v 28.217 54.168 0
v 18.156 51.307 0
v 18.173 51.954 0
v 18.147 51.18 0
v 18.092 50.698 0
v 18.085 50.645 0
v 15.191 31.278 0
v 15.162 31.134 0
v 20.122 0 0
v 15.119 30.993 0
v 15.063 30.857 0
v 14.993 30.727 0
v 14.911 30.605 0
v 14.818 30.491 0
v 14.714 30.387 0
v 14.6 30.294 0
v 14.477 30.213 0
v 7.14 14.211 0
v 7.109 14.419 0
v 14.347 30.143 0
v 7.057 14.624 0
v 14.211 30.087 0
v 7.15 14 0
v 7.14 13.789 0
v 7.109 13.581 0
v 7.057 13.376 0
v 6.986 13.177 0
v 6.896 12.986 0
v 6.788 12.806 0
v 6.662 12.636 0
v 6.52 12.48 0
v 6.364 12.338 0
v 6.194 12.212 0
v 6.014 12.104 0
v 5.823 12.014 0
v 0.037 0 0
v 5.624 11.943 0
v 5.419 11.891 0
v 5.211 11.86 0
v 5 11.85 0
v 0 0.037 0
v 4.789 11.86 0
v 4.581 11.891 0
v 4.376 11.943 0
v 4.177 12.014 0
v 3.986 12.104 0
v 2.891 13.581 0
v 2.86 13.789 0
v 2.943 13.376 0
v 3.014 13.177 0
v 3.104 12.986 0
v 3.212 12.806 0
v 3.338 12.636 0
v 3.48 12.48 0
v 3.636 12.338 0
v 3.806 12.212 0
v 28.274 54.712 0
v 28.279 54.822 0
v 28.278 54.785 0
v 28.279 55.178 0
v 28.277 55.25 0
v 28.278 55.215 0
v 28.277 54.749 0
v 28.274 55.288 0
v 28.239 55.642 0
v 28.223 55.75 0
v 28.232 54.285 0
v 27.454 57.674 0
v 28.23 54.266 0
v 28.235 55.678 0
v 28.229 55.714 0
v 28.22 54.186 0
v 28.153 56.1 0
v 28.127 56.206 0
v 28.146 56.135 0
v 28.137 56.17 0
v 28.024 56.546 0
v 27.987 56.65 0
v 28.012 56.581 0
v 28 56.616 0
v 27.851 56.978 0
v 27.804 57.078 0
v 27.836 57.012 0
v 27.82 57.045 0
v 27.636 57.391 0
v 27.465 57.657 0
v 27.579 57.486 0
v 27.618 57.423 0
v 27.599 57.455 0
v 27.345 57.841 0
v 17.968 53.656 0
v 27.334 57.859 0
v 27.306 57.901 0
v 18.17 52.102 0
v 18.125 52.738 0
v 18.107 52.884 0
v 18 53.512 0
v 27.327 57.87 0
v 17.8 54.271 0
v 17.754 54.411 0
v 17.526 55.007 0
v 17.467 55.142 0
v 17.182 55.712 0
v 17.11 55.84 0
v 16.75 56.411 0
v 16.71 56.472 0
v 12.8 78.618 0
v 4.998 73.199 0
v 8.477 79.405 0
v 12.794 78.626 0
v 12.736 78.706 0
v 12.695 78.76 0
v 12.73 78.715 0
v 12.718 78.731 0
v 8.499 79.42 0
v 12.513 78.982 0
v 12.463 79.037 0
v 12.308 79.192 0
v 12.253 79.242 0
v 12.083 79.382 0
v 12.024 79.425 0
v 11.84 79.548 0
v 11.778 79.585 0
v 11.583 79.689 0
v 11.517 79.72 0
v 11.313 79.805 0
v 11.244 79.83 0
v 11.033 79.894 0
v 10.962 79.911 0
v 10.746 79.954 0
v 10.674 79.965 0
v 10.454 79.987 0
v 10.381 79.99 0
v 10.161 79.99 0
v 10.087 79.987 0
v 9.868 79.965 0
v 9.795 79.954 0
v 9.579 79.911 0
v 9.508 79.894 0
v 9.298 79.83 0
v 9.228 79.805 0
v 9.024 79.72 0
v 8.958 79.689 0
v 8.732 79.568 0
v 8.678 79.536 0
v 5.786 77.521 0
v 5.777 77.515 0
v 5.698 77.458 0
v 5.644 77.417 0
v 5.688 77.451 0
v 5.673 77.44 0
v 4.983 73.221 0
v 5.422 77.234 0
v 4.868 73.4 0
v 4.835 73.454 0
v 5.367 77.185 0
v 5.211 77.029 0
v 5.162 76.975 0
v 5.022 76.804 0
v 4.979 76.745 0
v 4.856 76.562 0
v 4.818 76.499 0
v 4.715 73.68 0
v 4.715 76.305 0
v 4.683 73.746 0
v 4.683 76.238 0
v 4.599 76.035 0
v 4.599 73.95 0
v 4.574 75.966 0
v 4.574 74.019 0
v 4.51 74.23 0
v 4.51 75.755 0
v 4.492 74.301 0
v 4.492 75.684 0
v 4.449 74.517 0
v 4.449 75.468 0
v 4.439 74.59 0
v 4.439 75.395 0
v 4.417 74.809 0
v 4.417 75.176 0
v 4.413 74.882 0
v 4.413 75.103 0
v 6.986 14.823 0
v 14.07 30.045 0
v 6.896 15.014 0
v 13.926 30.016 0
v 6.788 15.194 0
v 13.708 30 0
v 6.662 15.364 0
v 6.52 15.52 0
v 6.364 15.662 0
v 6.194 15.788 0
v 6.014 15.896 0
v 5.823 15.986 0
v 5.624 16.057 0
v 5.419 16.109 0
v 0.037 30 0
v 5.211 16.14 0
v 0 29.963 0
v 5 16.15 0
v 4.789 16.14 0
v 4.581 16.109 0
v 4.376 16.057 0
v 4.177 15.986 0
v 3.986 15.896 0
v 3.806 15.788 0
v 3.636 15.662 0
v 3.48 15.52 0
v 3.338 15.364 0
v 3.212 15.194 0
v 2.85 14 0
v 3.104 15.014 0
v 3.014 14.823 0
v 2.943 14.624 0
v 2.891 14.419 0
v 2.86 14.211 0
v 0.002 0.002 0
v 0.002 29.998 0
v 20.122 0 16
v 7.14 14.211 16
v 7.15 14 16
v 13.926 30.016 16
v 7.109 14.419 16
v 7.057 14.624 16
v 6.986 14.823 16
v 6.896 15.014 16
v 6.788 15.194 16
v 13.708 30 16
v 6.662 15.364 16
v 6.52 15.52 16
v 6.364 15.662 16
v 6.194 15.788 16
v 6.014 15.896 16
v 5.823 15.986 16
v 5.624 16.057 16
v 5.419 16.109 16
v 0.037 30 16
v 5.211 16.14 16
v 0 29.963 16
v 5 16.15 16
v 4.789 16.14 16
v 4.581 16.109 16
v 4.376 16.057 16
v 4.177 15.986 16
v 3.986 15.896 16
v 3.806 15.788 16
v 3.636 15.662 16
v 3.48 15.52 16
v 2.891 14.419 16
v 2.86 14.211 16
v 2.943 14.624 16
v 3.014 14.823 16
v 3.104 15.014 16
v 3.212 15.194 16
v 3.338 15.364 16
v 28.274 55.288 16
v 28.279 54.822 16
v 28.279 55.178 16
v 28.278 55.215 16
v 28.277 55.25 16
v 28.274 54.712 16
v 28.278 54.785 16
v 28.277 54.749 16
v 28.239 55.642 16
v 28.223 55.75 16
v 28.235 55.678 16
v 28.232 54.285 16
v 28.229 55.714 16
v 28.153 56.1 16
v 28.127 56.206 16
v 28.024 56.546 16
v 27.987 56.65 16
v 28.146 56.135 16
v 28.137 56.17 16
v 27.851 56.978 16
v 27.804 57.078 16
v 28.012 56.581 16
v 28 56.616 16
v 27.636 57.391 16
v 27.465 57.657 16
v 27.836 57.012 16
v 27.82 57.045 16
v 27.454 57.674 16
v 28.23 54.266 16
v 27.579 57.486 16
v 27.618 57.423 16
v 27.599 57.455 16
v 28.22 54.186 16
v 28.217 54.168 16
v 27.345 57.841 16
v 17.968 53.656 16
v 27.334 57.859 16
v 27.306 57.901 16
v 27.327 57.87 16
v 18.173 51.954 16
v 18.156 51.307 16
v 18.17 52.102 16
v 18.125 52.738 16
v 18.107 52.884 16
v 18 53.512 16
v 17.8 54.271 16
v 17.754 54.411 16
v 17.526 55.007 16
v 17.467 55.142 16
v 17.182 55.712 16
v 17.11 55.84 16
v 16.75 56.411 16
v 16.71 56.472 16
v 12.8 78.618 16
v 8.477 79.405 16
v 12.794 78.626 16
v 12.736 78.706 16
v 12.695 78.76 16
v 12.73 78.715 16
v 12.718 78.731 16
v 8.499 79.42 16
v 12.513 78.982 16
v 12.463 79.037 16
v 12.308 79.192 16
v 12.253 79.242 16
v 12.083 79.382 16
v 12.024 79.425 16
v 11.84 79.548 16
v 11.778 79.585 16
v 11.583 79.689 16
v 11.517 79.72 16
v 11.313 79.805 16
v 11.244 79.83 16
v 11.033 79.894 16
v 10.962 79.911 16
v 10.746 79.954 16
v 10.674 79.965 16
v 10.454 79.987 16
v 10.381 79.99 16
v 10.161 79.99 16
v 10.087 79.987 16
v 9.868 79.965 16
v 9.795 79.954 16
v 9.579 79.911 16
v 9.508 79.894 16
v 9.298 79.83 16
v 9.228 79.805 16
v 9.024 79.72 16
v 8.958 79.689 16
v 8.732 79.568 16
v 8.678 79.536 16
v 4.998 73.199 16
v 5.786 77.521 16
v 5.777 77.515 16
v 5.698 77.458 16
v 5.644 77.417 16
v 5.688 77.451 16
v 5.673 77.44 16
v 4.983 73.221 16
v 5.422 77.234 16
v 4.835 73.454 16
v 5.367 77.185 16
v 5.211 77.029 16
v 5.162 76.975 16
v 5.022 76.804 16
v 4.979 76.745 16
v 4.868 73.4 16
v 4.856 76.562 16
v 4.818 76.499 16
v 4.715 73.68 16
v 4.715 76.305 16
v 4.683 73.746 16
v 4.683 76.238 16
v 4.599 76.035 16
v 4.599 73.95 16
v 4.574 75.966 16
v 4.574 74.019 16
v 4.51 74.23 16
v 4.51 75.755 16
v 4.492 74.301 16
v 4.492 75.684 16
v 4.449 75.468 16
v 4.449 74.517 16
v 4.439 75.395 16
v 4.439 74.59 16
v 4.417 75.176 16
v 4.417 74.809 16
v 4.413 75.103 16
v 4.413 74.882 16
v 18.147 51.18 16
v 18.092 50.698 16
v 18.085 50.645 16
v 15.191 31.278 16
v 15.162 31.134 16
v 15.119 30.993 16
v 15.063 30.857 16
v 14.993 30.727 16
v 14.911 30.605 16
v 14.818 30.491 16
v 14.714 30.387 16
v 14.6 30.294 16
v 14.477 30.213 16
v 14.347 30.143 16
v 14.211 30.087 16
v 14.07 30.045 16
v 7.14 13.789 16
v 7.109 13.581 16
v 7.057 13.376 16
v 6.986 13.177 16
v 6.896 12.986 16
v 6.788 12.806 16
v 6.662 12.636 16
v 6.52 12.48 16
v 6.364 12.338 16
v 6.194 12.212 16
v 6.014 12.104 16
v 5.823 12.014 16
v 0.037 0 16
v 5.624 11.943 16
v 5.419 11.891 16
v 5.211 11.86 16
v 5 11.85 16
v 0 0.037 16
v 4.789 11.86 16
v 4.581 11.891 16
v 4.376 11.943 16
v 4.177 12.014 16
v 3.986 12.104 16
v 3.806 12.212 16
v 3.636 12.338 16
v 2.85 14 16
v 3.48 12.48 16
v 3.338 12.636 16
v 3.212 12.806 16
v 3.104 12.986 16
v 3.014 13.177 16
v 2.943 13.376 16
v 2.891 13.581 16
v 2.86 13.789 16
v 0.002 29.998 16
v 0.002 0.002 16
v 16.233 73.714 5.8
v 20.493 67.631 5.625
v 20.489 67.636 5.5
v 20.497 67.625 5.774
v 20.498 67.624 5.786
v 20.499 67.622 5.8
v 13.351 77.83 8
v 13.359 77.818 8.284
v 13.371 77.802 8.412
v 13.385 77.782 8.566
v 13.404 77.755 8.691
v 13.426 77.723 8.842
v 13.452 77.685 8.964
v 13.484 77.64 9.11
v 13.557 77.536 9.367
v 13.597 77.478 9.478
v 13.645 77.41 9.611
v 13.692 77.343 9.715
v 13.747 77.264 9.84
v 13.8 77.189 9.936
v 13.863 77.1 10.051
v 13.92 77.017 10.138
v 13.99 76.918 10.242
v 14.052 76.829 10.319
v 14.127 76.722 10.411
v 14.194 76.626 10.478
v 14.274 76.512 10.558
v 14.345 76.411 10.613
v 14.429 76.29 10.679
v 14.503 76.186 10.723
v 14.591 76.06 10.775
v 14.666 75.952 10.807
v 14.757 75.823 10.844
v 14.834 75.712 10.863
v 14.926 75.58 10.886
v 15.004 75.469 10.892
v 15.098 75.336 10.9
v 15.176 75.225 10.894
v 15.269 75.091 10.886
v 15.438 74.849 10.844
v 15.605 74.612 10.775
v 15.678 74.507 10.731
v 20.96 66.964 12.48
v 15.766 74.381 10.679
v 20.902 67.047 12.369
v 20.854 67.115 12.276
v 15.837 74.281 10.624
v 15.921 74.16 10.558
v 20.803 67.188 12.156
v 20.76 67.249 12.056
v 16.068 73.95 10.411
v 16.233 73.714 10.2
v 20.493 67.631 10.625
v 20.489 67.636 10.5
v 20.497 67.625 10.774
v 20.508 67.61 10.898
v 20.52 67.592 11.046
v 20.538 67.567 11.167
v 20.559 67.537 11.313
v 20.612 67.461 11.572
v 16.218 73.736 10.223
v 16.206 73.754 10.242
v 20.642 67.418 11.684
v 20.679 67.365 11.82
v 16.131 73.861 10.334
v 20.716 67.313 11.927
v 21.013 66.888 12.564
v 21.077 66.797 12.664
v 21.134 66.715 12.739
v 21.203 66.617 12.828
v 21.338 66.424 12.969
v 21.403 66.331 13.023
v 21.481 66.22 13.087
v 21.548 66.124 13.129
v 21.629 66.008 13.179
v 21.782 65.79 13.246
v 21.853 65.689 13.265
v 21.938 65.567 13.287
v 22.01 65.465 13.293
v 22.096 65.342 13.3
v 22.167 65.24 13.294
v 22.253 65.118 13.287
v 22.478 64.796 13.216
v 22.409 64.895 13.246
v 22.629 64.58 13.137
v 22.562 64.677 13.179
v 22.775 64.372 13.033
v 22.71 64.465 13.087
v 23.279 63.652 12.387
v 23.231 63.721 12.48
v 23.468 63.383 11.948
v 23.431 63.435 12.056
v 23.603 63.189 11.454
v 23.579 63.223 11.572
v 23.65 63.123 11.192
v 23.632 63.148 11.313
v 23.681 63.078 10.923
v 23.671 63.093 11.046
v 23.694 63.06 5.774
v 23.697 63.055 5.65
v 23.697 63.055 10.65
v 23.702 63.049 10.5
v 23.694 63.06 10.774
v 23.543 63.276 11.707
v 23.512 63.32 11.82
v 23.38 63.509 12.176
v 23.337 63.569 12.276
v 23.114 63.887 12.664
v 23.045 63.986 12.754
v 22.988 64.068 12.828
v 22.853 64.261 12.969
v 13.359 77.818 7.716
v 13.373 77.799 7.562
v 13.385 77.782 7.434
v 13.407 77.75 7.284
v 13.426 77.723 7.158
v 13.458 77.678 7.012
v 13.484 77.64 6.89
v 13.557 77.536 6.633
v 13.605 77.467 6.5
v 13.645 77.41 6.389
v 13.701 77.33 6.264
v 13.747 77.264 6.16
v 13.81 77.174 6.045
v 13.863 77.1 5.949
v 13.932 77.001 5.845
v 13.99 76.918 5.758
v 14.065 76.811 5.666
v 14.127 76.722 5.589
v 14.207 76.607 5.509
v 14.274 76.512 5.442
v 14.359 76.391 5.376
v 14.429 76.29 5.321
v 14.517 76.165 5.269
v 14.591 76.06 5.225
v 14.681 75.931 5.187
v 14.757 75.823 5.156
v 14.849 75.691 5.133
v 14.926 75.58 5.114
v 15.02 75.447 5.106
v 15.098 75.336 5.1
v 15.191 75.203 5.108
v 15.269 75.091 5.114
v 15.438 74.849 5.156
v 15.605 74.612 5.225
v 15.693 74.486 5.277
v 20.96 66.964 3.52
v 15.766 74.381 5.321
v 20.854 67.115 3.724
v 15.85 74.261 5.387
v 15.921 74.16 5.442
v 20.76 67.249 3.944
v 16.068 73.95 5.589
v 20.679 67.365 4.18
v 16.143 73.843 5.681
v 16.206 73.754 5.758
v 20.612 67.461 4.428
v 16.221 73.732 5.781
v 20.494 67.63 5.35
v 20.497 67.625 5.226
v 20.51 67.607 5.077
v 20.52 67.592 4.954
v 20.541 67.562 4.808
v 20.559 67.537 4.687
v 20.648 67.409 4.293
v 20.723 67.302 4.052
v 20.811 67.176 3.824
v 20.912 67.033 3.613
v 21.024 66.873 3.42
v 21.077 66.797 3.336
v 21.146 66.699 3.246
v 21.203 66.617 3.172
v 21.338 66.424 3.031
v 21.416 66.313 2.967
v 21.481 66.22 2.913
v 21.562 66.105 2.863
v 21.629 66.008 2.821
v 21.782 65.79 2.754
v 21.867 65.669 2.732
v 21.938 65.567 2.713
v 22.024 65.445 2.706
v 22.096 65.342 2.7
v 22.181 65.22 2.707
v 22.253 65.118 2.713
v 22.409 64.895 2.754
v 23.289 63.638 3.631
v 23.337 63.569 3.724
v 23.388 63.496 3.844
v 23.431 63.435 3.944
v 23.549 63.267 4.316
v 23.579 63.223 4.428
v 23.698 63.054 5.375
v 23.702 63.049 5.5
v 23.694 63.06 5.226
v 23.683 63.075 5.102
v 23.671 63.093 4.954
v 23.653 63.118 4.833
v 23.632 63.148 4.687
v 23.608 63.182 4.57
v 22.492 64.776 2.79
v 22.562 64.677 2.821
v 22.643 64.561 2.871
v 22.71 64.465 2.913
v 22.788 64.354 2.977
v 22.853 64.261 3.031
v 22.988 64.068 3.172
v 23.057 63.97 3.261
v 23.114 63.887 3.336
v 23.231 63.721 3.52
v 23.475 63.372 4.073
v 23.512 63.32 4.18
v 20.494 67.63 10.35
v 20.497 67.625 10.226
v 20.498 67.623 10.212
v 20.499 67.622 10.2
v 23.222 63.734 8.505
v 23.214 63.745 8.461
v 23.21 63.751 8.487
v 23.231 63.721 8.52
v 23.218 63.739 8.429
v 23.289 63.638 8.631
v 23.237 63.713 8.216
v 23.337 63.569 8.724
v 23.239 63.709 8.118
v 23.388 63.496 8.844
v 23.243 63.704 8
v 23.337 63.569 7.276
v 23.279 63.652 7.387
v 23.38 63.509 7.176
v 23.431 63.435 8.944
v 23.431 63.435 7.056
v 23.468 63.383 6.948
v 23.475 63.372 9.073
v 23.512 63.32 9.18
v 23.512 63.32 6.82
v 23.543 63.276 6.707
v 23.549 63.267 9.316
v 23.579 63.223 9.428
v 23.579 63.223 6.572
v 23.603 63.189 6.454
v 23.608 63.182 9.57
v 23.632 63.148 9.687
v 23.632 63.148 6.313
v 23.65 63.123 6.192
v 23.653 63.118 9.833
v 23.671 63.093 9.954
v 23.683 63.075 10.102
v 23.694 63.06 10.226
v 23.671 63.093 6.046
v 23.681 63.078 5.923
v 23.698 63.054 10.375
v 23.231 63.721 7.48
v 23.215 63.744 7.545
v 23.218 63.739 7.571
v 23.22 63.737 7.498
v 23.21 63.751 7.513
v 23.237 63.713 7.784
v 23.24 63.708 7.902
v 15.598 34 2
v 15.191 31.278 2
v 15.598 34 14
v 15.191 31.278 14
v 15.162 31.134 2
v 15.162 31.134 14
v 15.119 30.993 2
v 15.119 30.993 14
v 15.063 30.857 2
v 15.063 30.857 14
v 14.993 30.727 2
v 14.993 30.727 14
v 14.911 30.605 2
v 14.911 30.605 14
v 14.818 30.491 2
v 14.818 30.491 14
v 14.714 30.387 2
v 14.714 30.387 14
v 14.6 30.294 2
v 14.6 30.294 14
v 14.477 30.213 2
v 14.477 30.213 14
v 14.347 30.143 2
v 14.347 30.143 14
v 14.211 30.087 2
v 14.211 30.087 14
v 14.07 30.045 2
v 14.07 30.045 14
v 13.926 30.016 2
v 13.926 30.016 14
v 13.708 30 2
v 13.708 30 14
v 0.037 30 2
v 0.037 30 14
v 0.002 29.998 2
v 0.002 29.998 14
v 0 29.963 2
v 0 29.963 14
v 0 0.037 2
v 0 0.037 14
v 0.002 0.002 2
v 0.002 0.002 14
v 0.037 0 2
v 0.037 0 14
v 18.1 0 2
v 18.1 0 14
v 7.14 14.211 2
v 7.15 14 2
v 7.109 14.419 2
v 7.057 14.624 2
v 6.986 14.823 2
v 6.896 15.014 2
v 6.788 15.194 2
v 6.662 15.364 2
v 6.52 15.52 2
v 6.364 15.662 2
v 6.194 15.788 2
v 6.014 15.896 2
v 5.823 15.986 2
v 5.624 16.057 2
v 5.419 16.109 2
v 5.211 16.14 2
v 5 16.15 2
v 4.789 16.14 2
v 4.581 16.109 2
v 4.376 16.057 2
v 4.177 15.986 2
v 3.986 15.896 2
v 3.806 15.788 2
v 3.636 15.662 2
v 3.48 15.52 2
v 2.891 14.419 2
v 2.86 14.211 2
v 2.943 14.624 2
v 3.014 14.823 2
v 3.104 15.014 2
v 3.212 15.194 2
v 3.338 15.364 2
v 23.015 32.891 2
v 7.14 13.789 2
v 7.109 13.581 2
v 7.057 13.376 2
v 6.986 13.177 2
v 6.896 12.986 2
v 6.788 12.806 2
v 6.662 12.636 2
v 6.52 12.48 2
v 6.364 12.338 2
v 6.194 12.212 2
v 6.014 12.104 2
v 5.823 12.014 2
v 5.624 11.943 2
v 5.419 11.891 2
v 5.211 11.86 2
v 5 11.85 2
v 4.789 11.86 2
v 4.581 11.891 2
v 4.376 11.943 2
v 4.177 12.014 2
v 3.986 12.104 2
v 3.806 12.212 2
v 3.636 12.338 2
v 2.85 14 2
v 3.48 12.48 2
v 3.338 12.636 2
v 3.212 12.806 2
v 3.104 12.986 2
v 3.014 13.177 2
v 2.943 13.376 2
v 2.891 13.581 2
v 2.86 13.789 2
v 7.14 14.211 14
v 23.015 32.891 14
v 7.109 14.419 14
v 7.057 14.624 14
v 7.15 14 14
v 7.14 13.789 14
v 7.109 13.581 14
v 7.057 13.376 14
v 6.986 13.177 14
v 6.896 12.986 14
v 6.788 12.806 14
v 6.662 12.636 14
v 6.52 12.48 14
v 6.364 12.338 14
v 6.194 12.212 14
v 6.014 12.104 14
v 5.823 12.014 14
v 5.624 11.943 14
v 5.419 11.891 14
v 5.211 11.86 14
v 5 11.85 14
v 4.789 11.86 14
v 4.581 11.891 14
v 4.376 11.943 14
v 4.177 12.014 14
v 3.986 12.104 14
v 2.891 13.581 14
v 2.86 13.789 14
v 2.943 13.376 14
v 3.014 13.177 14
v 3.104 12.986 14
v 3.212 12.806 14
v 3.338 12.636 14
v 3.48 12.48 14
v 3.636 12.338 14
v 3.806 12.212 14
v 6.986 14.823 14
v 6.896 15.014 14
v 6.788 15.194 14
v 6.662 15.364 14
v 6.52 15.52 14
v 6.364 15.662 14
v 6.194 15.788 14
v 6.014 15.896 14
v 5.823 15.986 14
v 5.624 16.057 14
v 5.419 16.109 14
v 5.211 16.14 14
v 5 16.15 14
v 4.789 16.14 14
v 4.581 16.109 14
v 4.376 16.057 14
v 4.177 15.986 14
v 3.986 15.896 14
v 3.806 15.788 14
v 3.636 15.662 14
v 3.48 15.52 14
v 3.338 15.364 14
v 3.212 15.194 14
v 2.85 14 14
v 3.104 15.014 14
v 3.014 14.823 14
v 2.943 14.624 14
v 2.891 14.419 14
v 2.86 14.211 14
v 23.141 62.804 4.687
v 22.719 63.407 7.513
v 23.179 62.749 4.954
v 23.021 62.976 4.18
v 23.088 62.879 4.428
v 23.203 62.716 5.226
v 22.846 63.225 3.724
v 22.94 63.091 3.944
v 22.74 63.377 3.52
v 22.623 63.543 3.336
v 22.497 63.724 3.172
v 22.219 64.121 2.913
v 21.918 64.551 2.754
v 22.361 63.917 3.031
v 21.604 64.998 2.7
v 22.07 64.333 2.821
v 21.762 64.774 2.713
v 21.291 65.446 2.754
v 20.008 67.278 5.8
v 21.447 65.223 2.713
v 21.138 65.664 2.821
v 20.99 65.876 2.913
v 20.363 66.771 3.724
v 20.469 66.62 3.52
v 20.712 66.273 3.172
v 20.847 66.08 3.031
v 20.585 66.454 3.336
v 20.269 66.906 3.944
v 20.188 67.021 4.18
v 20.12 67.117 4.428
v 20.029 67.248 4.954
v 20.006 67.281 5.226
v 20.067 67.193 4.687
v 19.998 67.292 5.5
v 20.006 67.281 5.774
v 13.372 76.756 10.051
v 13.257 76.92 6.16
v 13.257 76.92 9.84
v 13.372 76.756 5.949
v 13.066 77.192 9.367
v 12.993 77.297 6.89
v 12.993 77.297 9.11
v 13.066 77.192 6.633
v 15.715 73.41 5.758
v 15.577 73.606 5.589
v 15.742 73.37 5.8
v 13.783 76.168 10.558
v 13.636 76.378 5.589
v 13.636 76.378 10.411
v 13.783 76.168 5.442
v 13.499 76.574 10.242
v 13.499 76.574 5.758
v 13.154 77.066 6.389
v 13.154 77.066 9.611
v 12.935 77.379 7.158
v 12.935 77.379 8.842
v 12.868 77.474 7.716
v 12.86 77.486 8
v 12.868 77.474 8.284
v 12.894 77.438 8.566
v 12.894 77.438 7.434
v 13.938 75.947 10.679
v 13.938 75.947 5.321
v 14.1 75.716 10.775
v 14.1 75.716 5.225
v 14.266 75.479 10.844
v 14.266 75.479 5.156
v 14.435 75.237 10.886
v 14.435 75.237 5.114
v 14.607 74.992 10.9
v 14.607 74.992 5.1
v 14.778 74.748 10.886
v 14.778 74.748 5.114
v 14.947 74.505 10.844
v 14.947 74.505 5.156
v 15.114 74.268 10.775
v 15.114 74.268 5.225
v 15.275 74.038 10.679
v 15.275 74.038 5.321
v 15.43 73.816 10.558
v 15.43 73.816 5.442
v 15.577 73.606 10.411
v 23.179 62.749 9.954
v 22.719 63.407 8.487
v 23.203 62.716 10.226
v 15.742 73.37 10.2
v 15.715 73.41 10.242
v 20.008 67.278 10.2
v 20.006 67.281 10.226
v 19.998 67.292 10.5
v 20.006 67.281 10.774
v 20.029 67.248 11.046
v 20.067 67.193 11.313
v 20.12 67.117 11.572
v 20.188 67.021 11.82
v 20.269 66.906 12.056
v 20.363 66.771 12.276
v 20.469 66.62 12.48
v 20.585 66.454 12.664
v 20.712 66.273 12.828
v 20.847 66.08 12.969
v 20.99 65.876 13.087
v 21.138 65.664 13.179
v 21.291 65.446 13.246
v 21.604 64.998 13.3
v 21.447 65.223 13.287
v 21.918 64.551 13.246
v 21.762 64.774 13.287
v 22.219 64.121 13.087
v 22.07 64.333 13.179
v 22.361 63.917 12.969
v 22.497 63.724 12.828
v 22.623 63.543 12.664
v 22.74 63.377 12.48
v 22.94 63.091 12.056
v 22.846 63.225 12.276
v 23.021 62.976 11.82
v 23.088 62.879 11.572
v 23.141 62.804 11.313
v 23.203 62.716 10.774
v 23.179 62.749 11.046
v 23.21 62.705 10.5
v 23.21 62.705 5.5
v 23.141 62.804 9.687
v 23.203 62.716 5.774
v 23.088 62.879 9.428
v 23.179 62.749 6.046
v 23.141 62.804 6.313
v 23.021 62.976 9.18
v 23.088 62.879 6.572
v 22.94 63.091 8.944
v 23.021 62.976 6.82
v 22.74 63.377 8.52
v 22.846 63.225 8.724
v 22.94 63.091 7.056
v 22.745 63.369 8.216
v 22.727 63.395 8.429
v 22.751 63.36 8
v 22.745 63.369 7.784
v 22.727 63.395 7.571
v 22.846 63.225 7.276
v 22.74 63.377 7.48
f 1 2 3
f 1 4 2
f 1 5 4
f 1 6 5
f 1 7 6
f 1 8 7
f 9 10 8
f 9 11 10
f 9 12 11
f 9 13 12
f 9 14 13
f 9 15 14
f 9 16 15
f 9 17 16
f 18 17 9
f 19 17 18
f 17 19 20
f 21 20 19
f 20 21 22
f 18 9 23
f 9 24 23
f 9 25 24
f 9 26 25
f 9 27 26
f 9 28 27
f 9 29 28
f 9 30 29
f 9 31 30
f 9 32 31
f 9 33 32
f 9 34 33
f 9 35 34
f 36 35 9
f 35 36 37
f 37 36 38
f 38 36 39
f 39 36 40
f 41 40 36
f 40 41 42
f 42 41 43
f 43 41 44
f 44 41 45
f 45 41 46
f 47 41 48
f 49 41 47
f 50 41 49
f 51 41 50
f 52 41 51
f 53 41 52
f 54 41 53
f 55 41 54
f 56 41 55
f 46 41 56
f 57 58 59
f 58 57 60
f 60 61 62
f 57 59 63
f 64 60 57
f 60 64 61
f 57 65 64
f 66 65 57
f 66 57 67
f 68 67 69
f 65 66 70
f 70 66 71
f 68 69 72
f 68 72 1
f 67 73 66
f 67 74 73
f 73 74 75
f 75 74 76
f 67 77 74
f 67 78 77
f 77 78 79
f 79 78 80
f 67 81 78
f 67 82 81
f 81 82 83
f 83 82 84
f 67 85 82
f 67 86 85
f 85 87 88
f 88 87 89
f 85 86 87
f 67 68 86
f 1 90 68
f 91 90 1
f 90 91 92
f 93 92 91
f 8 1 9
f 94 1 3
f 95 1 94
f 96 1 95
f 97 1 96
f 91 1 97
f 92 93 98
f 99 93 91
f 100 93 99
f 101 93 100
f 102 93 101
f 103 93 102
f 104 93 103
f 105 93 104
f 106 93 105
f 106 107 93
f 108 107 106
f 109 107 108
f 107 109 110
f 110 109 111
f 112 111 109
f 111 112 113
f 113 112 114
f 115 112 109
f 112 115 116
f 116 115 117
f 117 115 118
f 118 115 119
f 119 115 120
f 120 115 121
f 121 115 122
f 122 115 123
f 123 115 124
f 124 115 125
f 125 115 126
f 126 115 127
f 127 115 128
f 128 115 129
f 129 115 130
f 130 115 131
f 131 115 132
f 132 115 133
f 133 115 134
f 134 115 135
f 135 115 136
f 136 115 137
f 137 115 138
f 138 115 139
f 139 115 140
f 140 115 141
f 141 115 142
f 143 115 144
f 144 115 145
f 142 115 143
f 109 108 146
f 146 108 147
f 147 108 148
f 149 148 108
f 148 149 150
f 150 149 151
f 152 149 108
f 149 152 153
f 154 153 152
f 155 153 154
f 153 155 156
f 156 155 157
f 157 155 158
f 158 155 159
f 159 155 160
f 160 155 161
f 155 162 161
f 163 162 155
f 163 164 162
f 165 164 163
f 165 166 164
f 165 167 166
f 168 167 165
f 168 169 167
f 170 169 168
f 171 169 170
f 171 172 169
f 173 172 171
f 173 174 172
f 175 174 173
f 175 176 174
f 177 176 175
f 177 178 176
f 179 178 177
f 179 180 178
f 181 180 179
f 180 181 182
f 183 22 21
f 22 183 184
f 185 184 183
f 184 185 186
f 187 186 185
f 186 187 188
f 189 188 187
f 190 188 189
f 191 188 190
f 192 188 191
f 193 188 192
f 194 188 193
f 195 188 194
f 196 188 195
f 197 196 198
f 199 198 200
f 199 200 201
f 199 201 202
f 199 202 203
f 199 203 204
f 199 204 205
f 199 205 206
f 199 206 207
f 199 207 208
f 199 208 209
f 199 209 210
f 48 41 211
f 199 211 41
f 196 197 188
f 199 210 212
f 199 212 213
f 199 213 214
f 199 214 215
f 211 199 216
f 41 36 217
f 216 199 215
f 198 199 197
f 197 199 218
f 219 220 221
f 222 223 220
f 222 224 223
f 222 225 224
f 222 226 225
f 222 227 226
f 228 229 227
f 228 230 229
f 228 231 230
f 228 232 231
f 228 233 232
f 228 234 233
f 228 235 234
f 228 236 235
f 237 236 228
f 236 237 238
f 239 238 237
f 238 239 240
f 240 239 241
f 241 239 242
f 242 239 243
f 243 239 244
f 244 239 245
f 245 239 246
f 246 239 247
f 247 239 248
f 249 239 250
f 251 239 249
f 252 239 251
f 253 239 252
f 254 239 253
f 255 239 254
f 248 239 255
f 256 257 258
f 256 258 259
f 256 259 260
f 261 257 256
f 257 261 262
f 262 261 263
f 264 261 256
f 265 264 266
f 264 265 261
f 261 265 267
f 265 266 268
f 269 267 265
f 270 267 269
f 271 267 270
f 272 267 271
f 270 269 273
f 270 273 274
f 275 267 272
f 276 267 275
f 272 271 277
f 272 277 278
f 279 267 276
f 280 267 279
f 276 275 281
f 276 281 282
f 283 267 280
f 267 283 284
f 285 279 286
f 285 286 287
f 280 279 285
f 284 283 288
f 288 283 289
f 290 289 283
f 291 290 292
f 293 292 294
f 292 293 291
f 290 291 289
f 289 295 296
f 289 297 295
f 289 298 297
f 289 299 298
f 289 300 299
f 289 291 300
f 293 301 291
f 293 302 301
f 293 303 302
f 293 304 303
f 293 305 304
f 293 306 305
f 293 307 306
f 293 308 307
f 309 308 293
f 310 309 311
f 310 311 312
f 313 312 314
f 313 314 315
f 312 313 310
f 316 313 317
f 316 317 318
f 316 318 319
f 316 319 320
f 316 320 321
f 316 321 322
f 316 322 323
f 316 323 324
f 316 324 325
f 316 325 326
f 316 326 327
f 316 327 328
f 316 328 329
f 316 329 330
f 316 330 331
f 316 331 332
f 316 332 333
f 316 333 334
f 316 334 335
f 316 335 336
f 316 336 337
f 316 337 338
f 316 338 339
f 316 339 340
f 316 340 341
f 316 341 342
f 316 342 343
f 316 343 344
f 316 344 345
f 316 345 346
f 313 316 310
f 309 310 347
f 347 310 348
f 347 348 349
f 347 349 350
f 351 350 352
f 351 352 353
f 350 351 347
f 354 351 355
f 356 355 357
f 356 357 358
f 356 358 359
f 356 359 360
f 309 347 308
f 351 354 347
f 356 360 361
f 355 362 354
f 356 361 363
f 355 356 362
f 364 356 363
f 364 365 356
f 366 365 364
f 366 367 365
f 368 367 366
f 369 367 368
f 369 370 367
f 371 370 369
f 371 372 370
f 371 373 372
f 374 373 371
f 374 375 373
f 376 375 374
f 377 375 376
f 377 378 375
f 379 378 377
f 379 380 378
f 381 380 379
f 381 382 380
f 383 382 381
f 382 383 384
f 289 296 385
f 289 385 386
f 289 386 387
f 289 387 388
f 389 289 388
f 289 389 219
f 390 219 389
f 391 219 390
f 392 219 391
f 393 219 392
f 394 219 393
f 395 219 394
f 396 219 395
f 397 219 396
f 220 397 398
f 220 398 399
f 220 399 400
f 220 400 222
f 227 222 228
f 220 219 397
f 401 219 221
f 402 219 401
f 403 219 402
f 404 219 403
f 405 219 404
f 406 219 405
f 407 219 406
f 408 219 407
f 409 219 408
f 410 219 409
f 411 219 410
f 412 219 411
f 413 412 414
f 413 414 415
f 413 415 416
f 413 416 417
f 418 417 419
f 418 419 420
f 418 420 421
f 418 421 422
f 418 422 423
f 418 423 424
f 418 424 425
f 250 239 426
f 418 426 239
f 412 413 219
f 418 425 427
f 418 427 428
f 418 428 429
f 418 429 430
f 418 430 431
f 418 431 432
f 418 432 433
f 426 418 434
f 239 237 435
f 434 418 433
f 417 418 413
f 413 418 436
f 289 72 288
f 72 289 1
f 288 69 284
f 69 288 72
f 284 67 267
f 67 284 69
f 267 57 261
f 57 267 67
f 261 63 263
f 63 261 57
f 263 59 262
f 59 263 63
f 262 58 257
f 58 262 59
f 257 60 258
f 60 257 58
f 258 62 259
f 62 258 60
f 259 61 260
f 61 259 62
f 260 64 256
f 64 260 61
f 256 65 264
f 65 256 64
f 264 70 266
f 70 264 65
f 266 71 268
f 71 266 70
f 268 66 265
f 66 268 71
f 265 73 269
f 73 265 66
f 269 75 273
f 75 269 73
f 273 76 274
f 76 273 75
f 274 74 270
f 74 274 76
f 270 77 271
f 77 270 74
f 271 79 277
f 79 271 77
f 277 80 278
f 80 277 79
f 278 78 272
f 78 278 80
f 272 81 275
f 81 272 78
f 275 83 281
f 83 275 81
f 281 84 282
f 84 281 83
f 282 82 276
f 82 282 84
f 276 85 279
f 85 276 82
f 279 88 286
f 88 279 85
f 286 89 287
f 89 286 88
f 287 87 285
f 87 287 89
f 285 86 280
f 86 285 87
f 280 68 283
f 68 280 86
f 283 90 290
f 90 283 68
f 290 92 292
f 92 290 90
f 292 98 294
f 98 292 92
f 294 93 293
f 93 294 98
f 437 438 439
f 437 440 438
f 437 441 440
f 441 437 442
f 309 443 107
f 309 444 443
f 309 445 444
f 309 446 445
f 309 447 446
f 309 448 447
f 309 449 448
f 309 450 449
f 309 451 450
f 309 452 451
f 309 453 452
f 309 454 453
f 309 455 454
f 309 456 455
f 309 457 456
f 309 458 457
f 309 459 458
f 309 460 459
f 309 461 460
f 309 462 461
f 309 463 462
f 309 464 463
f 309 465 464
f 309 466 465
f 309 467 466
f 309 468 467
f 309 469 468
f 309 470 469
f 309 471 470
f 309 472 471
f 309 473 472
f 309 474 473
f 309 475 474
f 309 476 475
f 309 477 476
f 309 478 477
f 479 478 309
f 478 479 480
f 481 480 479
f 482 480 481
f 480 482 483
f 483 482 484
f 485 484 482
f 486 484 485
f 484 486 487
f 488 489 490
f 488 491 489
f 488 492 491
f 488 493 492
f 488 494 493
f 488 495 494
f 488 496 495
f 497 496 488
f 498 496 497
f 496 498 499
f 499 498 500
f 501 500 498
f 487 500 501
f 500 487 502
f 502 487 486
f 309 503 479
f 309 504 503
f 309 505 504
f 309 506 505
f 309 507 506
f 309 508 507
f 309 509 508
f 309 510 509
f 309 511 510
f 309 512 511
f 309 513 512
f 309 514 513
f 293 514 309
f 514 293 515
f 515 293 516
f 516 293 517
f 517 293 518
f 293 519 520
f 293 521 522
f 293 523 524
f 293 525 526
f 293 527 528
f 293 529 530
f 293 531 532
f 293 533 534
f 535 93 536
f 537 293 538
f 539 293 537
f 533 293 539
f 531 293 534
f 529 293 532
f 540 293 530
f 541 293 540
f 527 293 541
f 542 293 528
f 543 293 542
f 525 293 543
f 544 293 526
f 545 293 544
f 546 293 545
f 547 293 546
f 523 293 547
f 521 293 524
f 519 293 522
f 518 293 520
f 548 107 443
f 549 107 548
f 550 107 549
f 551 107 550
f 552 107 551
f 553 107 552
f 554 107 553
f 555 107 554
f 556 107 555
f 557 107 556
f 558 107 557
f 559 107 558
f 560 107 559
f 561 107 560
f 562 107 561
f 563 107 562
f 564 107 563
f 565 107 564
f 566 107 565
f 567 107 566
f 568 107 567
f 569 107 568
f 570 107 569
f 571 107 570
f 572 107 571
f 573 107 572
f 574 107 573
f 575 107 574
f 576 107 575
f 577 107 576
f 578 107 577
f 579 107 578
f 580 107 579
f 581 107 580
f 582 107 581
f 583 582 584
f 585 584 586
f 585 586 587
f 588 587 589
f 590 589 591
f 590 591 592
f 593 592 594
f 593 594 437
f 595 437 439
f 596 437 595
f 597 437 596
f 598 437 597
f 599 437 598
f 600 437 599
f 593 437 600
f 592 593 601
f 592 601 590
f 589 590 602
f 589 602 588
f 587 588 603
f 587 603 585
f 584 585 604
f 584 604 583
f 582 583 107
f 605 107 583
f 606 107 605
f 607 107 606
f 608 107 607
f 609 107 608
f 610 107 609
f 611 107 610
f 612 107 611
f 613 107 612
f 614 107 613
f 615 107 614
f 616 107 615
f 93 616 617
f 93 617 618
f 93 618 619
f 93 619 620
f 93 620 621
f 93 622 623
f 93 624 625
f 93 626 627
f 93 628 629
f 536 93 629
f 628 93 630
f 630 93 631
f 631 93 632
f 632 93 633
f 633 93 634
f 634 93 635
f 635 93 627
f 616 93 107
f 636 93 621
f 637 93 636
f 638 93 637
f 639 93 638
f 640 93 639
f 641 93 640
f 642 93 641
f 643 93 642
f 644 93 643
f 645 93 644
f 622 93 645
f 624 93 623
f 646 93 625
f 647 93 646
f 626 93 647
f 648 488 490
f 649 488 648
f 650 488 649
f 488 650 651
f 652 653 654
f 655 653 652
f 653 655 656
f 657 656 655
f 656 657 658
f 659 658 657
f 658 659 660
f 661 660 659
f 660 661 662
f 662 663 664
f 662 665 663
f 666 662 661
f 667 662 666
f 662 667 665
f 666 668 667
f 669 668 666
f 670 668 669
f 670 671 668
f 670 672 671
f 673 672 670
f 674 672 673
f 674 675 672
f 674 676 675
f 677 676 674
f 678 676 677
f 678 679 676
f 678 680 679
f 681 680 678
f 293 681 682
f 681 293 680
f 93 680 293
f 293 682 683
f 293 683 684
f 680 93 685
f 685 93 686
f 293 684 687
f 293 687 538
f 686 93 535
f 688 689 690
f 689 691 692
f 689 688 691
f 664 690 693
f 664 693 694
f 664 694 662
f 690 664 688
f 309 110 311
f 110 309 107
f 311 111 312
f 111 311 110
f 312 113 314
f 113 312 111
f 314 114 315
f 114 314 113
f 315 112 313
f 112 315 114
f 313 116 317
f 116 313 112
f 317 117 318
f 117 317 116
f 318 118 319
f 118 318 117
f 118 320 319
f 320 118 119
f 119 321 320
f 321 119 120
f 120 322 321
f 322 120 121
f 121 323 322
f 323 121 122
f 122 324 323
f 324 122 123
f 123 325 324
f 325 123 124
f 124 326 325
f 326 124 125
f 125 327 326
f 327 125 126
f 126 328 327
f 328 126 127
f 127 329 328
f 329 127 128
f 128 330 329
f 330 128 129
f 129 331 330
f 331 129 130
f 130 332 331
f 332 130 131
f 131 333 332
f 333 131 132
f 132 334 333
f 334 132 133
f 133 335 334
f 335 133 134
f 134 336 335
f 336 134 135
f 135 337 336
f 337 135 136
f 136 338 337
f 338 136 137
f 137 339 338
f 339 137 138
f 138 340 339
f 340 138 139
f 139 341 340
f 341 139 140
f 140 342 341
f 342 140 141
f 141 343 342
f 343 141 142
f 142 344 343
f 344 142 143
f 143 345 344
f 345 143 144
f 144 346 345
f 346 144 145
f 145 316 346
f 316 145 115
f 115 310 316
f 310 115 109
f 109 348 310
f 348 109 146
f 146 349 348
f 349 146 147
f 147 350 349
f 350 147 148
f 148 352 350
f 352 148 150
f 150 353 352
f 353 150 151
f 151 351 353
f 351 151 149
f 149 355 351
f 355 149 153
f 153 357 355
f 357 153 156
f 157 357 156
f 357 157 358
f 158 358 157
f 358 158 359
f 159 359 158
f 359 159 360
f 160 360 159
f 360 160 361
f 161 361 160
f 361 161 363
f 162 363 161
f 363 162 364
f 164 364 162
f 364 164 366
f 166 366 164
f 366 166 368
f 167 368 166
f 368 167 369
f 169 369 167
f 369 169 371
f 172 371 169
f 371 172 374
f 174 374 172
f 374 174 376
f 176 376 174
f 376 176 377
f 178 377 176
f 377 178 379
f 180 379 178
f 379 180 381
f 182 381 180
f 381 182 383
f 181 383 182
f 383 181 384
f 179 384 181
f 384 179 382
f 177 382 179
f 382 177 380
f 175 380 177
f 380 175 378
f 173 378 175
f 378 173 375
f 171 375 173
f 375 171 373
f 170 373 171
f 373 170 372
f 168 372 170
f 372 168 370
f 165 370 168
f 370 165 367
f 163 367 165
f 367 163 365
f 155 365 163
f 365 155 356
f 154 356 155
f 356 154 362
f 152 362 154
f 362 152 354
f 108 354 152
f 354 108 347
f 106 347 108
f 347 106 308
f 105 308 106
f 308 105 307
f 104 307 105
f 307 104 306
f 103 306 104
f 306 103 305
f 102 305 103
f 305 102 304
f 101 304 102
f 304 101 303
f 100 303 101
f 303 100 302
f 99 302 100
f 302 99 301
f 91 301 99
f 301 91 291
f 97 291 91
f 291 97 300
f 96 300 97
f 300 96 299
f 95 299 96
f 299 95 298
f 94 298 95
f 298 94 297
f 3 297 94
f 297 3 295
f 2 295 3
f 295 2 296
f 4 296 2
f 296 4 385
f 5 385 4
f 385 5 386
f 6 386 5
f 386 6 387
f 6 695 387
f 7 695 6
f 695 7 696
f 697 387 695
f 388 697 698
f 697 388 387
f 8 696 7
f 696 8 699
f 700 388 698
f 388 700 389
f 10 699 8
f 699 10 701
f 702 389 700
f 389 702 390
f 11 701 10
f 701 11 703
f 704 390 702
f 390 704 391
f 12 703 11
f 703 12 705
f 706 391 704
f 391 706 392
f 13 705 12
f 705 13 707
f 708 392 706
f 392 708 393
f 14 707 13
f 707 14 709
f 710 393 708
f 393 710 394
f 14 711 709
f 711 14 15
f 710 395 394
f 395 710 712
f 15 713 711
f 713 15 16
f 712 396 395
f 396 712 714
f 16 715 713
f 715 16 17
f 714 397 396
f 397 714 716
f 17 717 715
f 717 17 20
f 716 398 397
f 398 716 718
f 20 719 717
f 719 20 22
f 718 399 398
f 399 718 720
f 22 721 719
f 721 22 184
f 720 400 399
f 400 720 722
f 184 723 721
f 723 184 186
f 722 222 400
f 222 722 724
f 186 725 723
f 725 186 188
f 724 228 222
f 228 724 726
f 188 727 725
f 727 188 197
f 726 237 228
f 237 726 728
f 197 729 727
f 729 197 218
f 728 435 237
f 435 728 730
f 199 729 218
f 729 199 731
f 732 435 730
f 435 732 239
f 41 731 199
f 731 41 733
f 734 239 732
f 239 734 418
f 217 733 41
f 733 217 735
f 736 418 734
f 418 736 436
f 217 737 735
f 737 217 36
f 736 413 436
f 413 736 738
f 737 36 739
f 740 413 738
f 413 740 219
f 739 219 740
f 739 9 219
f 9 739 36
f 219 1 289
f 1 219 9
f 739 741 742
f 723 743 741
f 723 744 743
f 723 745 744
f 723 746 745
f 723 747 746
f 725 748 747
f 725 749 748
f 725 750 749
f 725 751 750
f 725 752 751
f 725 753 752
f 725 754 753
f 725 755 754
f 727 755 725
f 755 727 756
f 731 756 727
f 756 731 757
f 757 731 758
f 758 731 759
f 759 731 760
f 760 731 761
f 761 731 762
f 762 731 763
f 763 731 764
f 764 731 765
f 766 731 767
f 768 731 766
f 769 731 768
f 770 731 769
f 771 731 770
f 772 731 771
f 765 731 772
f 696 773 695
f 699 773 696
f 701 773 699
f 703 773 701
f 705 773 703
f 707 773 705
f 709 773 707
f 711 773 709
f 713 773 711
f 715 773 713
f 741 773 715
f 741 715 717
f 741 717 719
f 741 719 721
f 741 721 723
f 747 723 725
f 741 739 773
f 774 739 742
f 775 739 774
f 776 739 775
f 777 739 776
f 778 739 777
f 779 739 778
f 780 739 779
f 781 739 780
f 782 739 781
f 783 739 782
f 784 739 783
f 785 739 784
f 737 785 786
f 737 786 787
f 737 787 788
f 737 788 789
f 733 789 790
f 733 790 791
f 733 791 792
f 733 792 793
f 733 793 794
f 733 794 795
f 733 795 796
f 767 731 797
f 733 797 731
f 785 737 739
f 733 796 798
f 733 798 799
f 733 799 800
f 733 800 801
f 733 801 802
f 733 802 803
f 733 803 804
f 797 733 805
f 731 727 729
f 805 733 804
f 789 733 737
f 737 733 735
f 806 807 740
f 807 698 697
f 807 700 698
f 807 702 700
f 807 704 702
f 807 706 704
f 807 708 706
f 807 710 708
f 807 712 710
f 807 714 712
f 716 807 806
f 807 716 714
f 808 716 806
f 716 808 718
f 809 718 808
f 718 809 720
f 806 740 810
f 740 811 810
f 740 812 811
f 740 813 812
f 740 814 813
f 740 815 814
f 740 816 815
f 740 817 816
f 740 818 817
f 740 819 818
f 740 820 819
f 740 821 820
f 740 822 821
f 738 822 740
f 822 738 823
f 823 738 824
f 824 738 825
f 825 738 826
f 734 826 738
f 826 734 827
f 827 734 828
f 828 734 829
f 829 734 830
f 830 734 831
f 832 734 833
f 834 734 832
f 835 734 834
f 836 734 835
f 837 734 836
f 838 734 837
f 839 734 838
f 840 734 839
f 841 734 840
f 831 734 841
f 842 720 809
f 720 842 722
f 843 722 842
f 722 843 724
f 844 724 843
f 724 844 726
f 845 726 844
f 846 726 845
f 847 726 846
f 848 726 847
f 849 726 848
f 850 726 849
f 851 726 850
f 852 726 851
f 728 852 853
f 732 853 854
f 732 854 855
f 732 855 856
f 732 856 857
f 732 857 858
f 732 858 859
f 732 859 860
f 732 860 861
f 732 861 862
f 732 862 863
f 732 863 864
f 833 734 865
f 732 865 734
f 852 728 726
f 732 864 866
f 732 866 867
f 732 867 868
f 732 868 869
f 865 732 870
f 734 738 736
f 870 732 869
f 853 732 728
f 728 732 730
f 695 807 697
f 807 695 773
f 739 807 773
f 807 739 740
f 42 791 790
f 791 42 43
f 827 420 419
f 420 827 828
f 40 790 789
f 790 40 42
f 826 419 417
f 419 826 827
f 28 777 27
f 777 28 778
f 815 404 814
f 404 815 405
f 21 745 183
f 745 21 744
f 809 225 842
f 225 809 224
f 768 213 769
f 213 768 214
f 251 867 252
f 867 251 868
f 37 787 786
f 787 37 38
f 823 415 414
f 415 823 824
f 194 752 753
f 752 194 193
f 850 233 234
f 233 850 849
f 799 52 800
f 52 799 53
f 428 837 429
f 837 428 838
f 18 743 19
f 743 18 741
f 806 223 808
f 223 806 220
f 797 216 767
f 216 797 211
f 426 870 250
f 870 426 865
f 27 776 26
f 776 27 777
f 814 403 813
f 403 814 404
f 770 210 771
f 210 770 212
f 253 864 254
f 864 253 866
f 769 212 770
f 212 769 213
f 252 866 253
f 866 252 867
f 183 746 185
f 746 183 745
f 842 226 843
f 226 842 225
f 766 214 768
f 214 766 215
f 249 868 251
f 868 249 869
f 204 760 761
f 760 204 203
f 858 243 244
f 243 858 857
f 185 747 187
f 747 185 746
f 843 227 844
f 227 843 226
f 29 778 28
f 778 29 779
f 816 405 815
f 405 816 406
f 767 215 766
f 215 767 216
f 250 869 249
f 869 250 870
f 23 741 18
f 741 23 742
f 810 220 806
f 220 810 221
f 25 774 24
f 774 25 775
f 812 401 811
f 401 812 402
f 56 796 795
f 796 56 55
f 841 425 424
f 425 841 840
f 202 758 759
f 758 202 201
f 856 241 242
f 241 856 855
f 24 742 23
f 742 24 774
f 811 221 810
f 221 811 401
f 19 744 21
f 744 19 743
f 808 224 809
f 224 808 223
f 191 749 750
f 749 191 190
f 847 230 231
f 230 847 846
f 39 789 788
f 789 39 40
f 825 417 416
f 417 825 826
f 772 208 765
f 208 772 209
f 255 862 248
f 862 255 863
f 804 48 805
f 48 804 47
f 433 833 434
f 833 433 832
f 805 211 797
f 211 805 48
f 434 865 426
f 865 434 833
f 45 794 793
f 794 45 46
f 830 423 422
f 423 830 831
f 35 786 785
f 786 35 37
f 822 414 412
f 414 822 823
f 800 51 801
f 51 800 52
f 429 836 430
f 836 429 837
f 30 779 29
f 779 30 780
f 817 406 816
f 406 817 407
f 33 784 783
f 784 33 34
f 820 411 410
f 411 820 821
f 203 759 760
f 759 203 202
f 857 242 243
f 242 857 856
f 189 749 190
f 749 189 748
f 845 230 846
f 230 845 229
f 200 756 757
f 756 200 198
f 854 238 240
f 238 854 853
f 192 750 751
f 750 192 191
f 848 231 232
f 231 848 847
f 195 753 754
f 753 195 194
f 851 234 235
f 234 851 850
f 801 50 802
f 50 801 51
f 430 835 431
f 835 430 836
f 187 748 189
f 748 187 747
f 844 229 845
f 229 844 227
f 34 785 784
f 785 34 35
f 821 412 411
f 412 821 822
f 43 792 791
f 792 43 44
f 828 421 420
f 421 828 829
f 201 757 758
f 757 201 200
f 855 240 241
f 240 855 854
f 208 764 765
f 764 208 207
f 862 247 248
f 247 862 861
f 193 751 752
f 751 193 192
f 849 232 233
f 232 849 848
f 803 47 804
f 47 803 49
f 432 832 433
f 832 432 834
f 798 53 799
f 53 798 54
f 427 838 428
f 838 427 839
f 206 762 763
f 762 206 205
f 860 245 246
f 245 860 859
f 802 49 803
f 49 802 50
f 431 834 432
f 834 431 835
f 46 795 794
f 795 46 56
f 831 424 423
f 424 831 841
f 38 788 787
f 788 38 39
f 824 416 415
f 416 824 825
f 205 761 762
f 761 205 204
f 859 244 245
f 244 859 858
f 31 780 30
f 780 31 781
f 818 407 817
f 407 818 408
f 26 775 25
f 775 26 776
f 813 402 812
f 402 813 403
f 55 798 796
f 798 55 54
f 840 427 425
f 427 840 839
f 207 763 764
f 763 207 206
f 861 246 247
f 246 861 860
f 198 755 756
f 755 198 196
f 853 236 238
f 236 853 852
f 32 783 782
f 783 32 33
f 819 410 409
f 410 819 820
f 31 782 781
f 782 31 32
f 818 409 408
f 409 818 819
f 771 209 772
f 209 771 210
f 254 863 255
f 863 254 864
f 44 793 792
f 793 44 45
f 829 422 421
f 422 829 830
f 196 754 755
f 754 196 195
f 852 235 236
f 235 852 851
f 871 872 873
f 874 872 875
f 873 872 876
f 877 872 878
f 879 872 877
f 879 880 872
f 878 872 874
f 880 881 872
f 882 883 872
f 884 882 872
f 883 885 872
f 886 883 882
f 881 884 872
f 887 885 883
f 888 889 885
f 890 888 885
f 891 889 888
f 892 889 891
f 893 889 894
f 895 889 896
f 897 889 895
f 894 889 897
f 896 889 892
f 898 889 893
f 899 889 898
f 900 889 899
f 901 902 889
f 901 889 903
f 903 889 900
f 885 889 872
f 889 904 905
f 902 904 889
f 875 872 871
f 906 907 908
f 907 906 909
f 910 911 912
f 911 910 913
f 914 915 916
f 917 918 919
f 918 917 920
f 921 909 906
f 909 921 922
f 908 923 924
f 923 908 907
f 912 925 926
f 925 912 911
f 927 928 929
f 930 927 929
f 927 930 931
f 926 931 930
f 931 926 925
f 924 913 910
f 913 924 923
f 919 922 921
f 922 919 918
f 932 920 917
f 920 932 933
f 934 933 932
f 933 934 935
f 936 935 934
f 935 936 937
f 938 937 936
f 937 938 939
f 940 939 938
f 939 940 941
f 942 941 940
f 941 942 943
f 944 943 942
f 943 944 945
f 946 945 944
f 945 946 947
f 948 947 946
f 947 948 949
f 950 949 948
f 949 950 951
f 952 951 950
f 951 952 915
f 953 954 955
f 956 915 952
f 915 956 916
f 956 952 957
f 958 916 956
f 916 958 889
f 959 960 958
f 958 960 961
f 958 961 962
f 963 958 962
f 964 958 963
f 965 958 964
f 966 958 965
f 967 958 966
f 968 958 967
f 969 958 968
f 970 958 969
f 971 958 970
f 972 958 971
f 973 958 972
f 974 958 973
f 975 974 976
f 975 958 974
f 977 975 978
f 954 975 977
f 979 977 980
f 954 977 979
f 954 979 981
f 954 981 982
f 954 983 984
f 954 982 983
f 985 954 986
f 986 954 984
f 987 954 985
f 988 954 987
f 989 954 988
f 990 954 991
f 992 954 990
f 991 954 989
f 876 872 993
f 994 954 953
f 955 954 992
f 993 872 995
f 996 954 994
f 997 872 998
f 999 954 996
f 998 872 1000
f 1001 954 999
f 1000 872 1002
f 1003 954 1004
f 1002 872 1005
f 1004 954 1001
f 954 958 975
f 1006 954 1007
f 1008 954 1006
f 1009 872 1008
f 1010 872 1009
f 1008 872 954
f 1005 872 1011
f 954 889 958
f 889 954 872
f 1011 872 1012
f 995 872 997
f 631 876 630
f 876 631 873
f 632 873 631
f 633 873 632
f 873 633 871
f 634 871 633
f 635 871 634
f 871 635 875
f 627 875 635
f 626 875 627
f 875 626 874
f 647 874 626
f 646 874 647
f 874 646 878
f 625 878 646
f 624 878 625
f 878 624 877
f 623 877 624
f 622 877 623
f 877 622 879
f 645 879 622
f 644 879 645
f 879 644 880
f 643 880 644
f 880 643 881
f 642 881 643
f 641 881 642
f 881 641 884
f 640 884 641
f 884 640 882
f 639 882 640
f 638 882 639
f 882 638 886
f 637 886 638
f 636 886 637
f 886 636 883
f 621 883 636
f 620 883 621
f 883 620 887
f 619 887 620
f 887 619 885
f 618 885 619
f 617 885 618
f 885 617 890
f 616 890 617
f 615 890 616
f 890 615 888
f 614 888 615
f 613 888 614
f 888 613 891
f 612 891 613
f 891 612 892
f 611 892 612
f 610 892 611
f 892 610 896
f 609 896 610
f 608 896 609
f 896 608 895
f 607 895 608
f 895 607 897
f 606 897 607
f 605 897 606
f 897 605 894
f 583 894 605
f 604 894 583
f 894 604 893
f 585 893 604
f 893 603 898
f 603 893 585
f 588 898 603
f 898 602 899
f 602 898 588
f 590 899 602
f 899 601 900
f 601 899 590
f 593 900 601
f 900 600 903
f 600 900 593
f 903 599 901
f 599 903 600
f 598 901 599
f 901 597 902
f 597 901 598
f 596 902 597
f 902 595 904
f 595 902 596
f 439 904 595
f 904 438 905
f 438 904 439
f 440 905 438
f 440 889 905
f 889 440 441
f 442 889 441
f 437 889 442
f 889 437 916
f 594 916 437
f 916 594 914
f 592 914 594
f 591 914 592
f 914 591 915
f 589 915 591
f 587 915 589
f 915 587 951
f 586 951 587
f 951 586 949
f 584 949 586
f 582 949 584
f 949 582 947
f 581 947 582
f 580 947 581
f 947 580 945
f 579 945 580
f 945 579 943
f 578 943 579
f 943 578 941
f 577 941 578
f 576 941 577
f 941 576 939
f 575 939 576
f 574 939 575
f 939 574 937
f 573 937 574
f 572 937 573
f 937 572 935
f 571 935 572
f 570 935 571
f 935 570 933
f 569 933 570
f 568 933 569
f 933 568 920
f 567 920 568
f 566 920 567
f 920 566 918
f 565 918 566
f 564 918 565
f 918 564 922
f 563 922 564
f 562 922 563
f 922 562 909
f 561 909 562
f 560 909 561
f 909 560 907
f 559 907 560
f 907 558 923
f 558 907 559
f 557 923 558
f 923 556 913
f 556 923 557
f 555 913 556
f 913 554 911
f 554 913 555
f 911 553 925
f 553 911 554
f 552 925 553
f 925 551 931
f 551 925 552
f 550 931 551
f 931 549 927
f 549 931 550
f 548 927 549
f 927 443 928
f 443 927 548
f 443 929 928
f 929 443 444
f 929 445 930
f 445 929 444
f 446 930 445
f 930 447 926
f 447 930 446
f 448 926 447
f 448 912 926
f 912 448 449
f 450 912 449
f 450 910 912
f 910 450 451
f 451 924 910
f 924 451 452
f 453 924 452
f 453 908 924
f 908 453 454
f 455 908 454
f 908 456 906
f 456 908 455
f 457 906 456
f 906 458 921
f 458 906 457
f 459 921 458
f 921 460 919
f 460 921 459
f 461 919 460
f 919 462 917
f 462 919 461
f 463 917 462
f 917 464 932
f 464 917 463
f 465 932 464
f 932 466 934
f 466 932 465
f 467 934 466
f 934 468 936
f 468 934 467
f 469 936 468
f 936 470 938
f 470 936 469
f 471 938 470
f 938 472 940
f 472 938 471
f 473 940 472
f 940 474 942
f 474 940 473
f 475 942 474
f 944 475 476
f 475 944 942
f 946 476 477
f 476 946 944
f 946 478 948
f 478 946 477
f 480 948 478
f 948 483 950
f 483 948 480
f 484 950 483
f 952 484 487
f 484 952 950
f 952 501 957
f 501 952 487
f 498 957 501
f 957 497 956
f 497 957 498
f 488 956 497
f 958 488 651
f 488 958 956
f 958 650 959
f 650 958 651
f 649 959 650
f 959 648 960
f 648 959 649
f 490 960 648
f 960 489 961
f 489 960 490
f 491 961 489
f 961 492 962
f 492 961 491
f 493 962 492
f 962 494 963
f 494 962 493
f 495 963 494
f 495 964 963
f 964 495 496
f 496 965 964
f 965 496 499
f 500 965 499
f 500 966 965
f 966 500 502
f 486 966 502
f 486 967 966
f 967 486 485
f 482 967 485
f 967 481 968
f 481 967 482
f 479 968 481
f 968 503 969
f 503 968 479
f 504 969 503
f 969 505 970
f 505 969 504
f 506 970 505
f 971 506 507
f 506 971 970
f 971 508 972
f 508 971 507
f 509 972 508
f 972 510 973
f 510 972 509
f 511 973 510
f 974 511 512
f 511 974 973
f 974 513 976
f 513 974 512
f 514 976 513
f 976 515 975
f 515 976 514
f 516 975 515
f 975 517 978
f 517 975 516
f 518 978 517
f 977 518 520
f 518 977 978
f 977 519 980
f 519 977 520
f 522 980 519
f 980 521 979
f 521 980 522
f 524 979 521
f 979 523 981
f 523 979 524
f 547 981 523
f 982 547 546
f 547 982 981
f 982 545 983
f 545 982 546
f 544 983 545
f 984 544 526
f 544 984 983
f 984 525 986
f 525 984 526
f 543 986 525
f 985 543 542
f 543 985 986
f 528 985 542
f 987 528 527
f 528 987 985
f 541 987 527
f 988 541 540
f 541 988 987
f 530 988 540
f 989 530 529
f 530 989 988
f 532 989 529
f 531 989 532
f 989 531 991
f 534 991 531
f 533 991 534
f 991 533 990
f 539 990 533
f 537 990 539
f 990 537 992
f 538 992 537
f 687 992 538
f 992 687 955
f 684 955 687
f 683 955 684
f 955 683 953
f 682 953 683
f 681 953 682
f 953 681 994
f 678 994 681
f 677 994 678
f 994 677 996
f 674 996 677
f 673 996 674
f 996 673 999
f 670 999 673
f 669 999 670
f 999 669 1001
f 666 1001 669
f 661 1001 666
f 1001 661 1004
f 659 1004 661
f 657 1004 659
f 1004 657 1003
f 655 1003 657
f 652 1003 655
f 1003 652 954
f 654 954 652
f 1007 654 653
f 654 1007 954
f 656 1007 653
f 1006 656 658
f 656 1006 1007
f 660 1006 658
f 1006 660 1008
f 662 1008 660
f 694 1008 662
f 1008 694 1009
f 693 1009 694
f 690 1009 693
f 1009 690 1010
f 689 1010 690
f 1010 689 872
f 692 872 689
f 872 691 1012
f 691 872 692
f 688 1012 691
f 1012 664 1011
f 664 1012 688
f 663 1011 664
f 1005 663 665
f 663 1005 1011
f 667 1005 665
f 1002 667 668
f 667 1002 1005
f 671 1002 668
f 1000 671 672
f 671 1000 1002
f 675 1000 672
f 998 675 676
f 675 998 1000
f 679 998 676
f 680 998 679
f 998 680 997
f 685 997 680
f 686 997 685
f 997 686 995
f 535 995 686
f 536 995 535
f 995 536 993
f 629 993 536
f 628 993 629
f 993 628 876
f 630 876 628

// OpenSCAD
// Transport-lock lever — printable replacement for a stamped-steel U-channel lever.
// Side profile lives in XY (x: open/ear side -> web side, y: up the lever),
// channel width runs along Z. Print as modelled: one flange flat on the bed.

/* [Measured (hand sketch)] */
total_h  = 80;   // bottom edge to highest point
width    = 16;   // outside width of the channel
wall     = 2;    // flange + web thickness
tab_len  = 15;   // ear length, front edge to arm front edge
tab_h    = 30;   // ear height
pin_d    = 4;    // pivot pin diameter
pin_edge = 3;    // ear front edge to hole edge
pin_up   = 12;   // bottom edge to hole edge

/* [Estimated from photos] */
arm_depth = 9.5; // flange depth of the arm
lean      = 8.5; // arm lean toward the web side, deg from the ear edge
bend      = 35;  // grip lean toward the open side, deg from the ear edge
kink_h    = 55;  // height of the bend on the arm centreline
tip_r     = 3;   // grip tip corner radius

/* [Print / strength] */
pin_clear  = 0.3; // diametral clearance on the pin hole
solid_from = 34;  // arm is solid above this height (>= total_h keeps the full open channel)
step_r     = 1.5; // fillet in the ear/arm step corner
kink_r     = 8;   // fillet inside the bend
cartoon    = true; // inset cartoon on the back face of the grip
relief     = 0.6;  // inset depth
template   = false; // true: 1.2 mm flat profile to hold against the original before the real print

$fn = 64;

u1 = [sin(lean), cos(lean)];
n1 = [cos(lean), -sin(lean)];
u2 = [-sin(bend), cos(bend)];
n2 = [cos(bend), sin(bend)];

F0  = [tab_len, tab_h];               // arm front edge at the step
C0  = F0 + n1 * arm_depth / 2;        // arm centreline at the step
s_k = (kink_h - C0.y) / cos(lean);
K   = C0 + u1 * s_k;                  // bend point
L2  = (total_h - tip_r - K.y - (arm_depth / 2 - tip_r) * sin(bend)) / cos(bend) + tip_r;
T   = K + u2 * L2;                    // grip tip centre
s_solid = (solid_from - tab_h) / cos(lean);

pin_c = [pin_edge + pin_d / 2, pin_up + pin_d / 2];

// region where (p - o) . n >= 0
module halfplane(o, n) {
    translate(o) rotate(atan2(n.y, n.x)) translate([0, -200]) square([400, 400]);
}

module arm_2d() {
    offset(r = -kink_r) offset(r = kink_r) {
        polygon([F0 - u1 * 60, F0 + u1 * s_k,
                 F0 + u1 * s_k + n1 * arm_depth, F0 - u1 * 60 + n1 * arm_depth]);
        translate(K) circle(d = arm_depth);
        hull() {
            translate(K) rotate(bend) translate([-arm_depth / 2, 0]) square([arm_depth, 1]);
            for (side = [-1, 1])
                translate(T - u2 * tip_r + n2 * side * (arm_depth / 2 - tip_r)) circle(r = tip_r);
        }
    }
}

module profile_2d() {
    intersection() {
        offset(r = -step_r) offset(r = step_r) {
            arm_2d();
            square([tab_len + 1, tab_h]);
        }
        halfplane([0, 0], [0, 1]);
    }
}

module channel_2d() {
    intersection() {
        offset(delta = 1) profile_2d();
        halfplane(F0 + n1 * (arm_depth - wall), -n1);  // keep the web
        halfplane(F0 + u1 * s_solid, -u1);             // keep the solid arm
    }
}

module lever() {
    difference() {
        linear_extrude(width) profile_2d();
        translate([0, 0, wall]) linear_extrude(width - 2 * wall) channel_2d();
        translate([pin_c.x, pin_c.y, -1]) cylinder(d = pin_d + pin_clear, h = width + 2);
    }
}

// cartoon, local 2D: x across the grip, y along it (toward the tip), 18 long
module cartoon_2d() {
    for (side = [-1, 1]) translate([side * 2.5, 2.8]) circle(r = 2.8);
    hull() {
        translate([0, 3]) circle(d = 4.4);
        translate([0, 13.5]) circle(d = 4.4);
    }
    translate([0, 15]) scale([1, 1.05]) circle(r = 2.9);
}

// cutter: starts `relief` below the back face of the grip, pokes 0.5 out past it
module grip_inset() {
    o = K + n2 * (arm_depth / 2 - relief) + u2 * 6.5;
    multmatrix([[0, u2.x, n2.x, o.x],
                [0, u2.y, n2.y, o.y],
                [-1, 0,   0,    width / 2],
                [0, 0, 0, 1]])
        linear_extrude(relief + 0.5) cartoon_2d();
}

module template_plate() {
    linear_extrude(1.2) difference() {
        profile_2d();
        translate(pin_c) circle(d = pin_d + pin_clear);
    }
}

if (template) template_plate();
else difference() {
    lever();
    if (cartoon) grip_inset();
}
